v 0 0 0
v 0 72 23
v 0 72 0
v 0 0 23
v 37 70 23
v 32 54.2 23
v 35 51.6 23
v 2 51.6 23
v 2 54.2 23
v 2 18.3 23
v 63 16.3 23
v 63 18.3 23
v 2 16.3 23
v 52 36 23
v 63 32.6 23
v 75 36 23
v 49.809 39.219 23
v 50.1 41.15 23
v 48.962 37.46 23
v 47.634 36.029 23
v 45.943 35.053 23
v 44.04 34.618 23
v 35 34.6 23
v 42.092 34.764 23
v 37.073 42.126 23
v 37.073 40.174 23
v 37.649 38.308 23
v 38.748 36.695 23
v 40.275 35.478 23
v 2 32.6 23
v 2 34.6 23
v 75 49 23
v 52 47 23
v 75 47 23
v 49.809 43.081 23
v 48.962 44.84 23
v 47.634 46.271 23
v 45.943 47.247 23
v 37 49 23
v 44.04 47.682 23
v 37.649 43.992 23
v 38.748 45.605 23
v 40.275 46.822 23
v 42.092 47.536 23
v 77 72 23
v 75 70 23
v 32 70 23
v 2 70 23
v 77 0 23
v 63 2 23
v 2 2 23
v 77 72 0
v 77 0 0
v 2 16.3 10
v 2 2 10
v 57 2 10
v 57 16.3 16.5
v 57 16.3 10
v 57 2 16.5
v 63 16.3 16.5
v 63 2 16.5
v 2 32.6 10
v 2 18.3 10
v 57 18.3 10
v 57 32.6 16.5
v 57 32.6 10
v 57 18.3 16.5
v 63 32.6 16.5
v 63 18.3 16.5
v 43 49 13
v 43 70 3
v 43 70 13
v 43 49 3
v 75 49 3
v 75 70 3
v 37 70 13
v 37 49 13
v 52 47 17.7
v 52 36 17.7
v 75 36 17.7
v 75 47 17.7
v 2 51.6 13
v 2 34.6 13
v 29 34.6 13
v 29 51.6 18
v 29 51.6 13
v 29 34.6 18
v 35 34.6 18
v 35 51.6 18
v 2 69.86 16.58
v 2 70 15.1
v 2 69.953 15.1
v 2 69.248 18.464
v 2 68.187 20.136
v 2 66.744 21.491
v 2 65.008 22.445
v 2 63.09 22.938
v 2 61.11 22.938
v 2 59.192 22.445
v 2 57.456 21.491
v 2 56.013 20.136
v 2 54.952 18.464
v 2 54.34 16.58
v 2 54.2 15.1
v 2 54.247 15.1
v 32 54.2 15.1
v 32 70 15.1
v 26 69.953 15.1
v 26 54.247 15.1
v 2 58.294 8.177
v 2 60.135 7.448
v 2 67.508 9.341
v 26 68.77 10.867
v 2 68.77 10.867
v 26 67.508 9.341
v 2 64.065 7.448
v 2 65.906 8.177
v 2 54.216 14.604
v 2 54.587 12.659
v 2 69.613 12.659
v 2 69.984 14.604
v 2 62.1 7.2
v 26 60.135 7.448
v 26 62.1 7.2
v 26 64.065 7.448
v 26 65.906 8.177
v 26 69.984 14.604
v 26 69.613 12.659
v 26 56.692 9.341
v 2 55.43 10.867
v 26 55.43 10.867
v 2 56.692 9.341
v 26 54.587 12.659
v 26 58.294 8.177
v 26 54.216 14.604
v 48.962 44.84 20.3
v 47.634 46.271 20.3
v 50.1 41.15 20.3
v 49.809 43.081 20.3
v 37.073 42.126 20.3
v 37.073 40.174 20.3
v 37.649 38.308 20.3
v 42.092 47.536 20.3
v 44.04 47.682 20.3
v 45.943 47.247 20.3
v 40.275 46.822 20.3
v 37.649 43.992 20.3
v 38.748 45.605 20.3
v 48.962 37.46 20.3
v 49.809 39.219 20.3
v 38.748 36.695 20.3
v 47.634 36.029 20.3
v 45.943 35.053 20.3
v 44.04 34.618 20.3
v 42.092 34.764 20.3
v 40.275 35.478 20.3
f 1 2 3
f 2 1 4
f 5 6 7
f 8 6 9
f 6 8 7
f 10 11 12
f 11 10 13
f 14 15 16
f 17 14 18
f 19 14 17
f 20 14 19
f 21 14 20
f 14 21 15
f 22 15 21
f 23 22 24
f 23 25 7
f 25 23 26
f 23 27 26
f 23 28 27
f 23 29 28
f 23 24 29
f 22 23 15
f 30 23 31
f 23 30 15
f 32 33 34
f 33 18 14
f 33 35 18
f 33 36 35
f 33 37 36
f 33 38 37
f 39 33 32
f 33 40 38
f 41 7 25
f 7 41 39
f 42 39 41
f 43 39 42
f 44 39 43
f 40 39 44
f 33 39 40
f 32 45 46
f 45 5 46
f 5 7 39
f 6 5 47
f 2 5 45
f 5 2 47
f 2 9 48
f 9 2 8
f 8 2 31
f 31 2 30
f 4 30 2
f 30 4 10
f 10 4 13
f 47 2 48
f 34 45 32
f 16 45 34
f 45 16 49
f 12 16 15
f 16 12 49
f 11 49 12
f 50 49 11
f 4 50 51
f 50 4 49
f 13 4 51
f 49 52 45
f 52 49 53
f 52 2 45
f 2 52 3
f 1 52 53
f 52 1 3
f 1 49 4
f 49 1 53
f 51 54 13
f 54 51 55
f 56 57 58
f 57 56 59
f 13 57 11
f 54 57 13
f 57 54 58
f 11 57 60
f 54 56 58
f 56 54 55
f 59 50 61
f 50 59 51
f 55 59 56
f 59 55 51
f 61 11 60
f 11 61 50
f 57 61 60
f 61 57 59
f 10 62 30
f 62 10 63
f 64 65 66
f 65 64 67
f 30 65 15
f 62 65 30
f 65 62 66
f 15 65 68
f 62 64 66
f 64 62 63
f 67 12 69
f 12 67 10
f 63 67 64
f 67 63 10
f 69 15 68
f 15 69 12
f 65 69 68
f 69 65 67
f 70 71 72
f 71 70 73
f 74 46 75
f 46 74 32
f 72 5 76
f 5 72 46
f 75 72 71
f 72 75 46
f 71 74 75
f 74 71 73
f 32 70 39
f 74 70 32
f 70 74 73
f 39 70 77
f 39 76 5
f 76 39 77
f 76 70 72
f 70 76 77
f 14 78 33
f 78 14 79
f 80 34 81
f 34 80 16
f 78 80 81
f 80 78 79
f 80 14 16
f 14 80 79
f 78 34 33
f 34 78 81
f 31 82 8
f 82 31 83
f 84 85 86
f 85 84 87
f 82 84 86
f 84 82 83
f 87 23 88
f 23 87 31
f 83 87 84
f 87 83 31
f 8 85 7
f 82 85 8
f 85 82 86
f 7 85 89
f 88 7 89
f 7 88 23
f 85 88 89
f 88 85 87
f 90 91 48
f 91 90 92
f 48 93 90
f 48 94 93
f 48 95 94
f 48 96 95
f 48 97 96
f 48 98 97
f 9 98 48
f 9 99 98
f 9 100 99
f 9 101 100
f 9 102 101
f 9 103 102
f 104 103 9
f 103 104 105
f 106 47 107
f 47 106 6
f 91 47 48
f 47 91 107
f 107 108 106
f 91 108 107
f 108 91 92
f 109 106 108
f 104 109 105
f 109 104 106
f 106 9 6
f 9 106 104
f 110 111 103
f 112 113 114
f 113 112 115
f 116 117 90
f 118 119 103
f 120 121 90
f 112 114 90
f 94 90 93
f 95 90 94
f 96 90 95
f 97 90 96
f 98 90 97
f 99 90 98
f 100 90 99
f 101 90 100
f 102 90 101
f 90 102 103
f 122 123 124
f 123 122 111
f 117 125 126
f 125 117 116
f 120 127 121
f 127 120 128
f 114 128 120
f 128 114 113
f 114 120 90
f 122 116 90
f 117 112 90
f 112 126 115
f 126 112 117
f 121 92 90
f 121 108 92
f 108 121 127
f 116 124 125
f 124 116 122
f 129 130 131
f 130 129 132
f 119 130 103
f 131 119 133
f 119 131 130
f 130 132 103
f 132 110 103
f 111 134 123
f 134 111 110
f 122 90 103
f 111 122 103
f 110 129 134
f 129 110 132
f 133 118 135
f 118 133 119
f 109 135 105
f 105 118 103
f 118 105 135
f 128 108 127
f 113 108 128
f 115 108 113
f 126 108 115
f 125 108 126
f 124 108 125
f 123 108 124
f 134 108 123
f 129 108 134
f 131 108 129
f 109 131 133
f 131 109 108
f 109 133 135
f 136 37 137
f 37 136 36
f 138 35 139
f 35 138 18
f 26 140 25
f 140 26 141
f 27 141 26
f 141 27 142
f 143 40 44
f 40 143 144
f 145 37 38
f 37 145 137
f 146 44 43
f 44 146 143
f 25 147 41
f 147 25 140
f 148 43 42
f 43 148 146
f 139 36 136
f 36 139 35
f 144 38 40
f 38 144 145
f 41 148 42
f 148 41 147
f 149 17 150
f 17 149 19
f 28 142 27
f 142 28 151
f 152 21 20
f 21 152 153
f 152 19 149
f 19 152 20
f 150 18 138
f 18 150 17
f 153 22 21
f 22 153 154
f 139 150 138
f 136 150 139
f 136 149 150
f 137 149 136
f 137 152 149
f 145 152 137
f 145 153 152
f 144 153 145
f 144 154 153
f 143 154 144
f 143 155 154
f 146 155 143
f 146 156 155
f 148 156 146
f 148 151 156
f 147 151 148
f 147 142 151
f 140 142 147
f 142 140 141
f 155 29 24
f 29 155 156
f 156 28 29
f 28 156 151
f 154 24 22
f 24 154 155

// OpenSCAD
length = 77;
width = 72;
height = 23;
magnetPadding = 15;
magnetBaseInnerDiameter = 13.1;
magnetHeight = 2.7;

workerBoxLength = 55;
workerBoxHeight = 13;
workerBoxWidth = 14.3;

wallThickness = 2;

fingerNotchSize = 6;

meepleBoxWidth = 32;
meepleBoxLength = 21;
meepleBoxHeight = 20;

whiteCubeBoxWidth = 11;
whiteCubeBoxLength = 23;
whiteCubeBoxHeight = 5.3;

coloredCubesBoxWidth = 17;
coloredCubesBoxLength = 27;
coloredCubesBoxHeight = 10;

cylinderDiameter = 15.8;
cylinderBoxLength = 24;

difference(){
    cube([length, width, height]);
    
    //workers 1 x 5, 57 long x workerBoxWidth wide x 13 high
    translate([wallThickness, wallThickness, height - workerBoxHeight])
        cube([workerBoxLength, workerBoxWidth, workerBoxHeight]);
    translate([wallThickness + workerBoxLength, wallThickness, height - (workerBoxHeight/2)])
        cube([fingerNotchSize, workerBoxWidth, workerBoxHeight / 2]);
    
    
    //workers 1 x 5, 57 long x workerBoxWidth wide x 13 high
    translate([
        wallThickness,
        wallThickness * 2 + workerBoxWidth,
        height - workerBoxHeight])
        cube([workerBoxLength, workerBoxWidth, workerBoxHeight]); 
    translate([
        wallThickness + workerBoxLength,
        wallThickness * 2 + workerBoxWidth,
        height - (workerBoxHeight/2)])
        cube([fingerNotchSize, workerBoxWidth, workerBoxHeight / 2]);
    
    //meeples x 3, 32 x 21 x 20 high
    translate([
        length - (meepleBoxWidth + wallThickness),
        width - (meepleBoxLength + wallThickness),
        height - meepleBoxHeight])
        cube([meepleBoxWidth, meepleBoxLength, meepleBoxHeight]);
    translate([
        length - (meepleBoxWidth + wallThickness + fingerNotchSize),
        width - (meepleBoxLength + wallThickness),
        height - (meepleBoxHeight/2)])
        cube([fingerNotchSize, meepleBoxLength, meepleBoxHeight/2]);
    
    
    //white tiny cubes x 5 (big open tray) 20x20x5high
    translate([
        length - (whiteCubeBoxLength + wallThickness),
        width - (wallThickness * 2 + meepleBoxWidth),
        height - whiteCubeBoxHeight])
        cube([whiteCubeBoxLength, whiteCubeBoxWidth, whiteCubeBoxHeight]);
    
    //colored normal cubes, 27 x 17 x 10    
    translate([
        wallThickness,
        wallThickness + workerBoxWidth * 2 + wallThickness * 2,
        height - coloredCubesBoxHeight])
        cube([coloredCubesBoxLength, coloredCubesBoxWidth, coloredCubesBoxHeight]);
    translate([
        wallThickness + coloredCubesBoxLength,
        wallThickness + workerBoxWidth * 2 + wallThickness * 2,
        height - (coloredCubesBoxHeight/2)])
        cube([fingerNotchSize, coloredCubesBoxWidth, coloredCubesBoxHeight/2]);
    
    //disks
    translate([
        wallThickness,
        width - (cylinderDiameter + wallThickness),
        height - (cylinderDiameter/2)])
        cube([cylinderBoxLength + fingerNotchSize, cylinderDiameter, cylinderDiameter/2]);
    translate([
        wallThickness,
        width - (wallThickness + cylinderDiameter/2),
        height - (cylinderDiameter/2)])
        rotate([0, 90, 0])
            cylinder(cylinderBoxLength, d=cylinderDiameter);

    //magnet
    translate([
        wallThickness * 2 + coloredCubesBoxLength + fingerNotchSize + magnetBaseInnerDiameter/2 ,
        wallThickness + workerBoxWidth * 2 + wallThickness * 2 + magnetBaseInnerDiameter/2,
        height - magnetHeight])
        cylinder(magnetHeight, d=magnetBaseInnerDiameter);

}

    
